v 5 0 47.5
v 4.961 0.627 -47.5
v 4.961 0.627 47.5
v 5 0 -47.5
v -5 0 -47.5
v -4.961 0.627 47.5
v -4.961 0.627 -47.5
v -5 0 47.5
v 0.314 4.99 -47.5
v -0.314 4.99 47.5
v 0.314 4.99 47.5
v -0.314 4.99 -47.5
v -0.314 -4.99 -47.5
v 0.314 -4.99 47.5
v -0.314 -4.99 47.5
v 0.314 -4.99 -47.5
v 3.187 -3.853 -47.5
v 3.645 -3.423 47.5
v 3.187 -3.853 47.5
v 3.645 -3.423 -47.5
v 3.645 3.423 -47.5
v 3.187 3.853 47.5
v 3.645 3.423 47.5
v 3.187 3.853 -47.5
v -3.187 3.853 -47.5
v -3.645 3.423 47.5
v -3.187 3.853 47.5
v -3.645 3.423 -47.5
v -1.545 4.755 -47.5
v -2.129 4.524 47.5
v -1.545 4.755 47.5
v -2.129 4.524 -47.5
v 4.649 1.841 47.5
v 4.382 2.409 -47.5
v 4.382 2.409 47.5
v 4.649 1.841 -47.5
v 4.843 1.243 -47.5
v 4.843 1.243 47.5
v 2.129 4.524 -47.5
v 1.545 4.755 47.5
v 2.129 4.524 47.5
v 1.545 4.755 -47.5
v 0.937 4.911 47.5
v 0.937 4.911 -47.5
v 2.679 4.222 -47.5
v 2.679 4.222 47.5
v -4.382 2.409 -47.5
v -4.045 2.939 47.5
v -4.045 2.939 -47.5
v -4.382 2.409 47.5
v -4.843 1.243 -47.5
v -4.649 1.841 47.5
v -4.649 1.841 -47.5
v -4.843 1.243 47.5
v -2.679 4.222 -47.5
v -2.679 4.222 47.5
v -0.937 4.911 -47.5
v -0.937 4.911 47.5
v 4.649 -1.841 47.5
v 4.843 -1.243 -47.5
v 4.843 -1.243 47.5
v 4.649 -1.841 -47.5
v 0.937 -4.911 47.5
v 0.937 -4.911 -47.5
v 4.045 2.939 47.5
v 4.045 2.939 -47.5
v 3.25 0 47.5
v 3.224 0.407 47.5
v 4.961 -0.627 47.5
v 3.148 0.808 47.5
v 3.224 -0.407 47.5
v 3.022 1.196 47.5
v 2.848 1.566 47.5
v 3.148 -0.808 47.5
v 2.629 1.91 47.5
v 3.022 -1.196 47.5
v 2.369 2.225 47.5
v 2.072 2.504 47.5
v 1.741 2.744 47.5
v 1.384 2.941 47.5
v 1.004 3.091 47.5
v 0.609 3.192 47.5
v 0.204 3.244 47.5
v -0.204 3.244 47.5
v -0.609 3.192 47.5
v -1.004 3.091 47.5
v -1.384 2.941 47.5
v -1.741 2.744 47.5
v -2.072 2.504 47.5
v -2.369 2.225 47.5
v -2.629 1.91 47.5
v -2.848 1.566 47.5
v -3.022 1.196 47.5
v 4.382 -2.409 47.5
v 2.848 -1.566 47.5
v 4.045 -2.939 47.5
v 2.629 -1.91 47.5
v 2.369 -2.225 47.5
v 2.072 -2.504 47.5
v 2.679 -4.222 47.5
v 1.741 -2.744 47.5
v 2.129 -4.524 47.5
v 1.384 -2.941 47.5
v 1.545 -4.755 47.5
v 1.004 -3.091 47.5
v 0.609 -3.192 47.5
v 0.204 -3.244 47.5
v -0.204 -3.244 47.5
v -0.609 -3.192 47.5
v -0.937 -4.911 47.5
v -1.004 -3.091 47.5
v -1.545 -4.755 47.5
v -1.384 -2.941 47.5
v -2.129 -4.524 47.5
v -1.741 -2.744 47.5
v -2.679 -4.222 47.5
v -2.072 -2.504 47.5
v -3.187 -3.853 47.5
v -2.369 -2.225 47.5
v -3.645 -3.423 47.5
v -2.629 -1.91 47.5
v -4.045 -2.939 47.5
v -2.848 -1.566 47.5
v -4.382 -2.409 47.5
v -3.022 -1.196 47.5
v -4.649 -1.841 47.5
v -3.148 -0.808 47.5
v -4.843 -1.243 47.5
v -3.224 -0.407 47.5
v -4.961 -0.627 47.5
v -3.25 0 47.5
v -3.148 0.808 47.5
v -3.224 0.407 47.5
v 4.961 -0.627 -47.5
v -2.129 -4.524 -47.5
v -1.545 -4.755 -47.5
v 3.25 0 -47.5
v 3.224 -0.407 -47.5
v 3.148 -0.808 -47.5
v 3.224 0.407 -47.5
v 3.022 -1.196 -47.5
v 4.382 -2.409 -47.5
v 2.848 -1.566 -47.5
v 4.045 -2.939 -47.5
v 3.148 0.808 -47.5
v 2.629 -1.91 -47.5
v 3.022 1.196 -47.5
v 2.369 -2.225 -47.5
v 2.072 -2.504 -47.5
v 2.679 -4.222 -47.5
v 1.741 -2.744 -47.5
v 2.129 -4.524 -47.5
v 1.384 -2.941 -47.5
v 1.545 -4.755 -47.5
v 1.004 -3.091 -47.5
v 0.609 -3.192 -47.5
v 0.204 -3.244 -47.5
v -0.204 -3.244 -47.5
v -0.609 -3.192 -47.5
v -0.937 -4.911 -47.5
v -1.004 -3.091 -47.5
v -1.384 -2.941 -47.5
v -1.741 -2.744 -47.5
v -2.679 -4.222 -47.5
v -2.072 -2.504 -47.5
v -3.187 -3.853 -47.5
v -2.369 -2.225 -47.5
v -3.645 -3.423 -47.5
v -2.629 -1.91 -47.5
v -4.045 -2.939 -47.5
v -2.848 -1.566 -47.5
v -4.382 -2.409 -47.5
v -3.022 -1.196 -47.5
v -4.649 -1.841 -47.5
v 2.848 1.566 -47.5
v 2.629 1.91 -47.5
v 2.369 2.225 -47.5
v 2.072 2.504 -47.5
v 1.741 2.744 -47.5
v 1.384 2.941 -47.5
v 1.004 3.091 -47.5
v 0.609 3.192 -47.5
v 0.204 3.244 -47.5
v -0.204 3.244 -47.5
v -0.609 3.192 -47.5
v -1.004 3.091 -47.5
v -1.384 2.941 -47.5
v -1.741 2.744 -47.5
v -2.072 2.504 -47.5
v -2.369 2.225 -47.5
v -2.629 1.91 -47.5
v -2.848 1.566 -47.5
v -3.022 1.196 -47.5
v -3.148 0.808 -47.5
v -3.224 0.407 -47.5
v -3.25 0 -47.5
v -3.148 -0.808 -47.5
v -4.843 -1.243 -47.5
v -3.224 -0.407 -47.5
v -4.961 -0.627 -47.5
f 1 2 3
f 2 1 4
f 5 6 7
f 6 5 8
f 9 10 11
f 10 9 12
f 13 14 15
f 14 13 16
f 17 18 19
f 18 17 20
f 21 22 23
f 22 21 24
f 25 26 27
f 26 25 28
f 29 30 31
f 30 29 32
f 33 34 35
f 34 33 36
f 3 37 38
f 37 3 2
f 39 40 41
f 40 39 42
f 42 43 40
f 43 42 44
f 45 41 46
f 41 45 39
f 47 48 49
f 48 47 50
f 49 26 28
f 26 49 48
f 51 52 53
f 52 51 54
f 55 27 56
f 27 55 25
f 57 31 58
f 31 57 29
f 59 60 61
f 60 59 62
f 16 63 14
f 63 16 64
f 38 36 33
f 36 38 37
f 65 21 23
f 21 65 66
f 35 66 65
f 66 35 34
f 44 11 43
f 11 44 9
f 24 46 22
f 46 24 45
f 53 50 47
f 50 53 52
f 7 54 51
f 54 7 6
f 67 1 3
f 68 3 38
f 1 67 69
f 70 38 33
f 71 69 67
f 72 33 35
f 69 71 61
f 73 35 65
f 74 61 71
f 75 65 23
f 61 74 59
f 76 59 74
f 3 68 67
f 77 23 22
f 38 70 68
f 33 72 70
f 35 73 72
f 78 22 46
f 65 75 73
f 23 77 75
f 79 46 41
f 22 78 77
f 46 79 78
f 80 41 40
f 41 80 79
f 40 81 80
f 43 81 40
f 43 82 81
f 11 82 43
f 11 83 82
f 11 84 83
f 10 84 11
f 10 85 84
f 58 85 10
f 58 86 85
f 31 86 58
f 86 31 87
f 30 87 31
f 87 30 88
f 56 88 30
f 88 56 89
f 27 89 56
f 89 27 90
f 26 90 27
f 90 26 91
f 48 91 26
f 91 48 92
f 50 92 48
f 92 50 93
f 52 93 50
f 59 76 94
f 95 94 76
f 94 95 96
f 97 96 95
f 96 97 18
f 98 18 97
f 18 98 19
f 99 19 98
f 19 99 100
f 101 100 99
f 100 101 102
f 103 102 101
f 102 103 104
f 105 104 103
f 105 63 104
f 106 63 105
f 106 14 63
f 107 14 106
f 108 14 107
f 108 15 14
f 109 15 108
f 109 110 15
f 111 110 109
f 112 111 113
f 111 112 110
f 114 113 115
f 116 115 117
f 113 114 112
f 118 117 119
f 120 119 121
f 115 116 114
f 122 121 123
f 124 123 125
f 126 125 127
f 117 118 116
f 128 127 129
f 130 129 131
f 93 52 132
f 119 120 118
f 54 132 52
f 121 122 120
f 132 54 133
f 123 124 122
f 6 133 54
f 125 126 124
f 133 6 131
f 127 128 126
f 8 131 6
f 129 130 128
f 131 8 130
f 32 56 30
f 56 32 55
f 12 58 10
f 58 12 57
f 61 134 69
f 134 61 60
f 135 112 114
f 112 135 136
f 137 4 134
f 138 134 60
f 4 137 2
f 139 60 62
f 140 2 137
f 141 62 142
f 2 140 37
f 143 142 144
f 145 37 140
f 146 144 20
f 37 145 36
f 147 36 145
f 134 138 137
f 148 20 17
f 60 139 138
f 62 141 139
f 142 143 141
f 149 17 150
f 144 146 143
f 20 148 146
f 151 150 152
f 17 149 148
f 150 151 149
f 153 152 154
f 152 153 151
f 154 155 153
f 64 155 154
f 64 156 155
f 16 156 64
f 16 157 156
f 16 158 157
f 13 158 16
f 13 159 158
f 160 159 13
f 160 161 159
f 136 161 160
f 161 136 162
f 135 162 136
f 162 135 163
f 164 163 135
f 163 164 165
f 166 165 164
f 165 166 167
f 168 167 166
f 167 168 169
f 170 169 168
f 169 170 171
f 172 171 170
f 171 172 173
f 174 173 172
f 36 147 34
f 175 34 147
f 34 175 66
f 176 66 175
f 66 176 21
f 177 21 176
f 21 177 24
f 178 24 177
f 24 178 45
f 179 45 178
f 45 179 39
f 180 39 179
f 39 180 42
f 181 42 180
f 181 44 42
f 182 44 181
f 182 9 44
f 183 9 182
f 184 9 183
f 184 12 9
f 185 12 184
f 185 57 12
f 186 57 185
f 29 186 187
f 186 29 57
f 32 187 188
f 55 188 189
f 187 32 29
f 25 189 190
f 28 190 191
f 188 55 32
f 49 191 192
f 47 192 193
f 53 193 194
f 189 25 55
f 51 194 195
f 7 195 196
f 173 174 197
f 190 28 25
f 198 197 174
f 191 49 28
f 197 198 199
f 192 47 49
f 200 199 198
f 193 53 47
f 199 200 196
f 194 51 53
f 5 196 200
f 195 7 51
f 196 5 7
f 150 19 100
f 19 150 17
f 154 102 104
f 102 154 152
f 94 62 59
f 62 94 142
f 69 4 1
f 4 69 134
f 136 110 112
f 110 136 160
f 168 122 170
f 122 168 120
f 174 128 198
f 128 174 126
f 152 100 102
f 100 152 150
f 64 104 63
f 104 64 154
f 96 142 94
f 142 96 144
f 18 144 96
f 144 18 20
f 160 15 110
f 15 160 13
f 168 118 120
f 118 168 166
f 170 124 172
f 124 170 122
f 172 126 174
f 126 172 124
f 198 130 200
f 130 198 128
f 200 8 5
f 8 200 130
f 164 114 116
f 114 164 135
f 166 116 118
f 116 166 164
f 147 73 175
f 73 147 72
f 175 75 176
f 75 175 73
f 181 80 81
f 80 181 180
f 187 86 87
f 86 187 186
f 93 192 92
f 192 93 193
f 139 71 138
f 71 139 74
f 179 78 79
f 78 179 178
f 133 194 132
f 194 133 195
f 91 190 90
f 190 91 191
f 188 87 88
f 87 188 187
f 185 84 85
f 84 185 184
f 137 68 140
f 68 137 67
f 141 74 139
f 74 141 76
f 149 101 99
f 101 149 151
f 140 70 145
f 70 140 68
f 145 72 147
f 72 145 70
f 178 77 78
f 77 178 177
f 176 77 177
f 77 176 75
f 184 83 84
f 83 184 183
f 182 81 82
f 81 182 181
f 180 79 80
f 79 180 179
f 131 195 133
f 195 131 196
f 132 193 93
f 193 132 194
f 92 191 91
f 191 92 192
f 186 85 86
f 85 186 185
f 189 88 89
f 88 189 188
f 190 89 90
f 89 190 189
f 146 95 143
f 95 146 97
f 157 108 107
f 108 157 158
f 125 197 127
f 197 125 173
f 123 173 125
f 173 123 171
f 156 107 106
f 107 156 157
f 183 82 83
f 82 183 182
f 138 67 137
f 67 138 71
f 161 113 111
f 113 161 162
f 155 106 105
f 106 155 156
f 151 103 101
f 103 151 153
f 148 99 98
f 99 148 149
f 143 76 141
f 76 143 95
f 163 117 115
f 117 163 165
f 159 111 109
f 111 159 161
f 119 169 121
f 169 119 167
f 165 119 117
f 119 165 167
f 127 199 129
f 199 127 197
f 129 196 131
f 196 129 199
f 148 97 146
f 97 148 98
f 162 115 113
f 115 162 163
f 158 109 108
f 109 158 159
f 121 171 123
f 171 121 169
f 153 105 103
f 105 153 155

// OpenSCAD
$fn = 50;


difference() {
	union() {
		translate(v = [0, 0, -47.5000000000]) {
			cylinder(h = 95, r = 5.0000000000);
		}
	}
	union() {
		translate(v = [0, 0, -100.0000000000]) {
			cylinder(h = 200, r = 3.2500000000);
		}
	}
}
